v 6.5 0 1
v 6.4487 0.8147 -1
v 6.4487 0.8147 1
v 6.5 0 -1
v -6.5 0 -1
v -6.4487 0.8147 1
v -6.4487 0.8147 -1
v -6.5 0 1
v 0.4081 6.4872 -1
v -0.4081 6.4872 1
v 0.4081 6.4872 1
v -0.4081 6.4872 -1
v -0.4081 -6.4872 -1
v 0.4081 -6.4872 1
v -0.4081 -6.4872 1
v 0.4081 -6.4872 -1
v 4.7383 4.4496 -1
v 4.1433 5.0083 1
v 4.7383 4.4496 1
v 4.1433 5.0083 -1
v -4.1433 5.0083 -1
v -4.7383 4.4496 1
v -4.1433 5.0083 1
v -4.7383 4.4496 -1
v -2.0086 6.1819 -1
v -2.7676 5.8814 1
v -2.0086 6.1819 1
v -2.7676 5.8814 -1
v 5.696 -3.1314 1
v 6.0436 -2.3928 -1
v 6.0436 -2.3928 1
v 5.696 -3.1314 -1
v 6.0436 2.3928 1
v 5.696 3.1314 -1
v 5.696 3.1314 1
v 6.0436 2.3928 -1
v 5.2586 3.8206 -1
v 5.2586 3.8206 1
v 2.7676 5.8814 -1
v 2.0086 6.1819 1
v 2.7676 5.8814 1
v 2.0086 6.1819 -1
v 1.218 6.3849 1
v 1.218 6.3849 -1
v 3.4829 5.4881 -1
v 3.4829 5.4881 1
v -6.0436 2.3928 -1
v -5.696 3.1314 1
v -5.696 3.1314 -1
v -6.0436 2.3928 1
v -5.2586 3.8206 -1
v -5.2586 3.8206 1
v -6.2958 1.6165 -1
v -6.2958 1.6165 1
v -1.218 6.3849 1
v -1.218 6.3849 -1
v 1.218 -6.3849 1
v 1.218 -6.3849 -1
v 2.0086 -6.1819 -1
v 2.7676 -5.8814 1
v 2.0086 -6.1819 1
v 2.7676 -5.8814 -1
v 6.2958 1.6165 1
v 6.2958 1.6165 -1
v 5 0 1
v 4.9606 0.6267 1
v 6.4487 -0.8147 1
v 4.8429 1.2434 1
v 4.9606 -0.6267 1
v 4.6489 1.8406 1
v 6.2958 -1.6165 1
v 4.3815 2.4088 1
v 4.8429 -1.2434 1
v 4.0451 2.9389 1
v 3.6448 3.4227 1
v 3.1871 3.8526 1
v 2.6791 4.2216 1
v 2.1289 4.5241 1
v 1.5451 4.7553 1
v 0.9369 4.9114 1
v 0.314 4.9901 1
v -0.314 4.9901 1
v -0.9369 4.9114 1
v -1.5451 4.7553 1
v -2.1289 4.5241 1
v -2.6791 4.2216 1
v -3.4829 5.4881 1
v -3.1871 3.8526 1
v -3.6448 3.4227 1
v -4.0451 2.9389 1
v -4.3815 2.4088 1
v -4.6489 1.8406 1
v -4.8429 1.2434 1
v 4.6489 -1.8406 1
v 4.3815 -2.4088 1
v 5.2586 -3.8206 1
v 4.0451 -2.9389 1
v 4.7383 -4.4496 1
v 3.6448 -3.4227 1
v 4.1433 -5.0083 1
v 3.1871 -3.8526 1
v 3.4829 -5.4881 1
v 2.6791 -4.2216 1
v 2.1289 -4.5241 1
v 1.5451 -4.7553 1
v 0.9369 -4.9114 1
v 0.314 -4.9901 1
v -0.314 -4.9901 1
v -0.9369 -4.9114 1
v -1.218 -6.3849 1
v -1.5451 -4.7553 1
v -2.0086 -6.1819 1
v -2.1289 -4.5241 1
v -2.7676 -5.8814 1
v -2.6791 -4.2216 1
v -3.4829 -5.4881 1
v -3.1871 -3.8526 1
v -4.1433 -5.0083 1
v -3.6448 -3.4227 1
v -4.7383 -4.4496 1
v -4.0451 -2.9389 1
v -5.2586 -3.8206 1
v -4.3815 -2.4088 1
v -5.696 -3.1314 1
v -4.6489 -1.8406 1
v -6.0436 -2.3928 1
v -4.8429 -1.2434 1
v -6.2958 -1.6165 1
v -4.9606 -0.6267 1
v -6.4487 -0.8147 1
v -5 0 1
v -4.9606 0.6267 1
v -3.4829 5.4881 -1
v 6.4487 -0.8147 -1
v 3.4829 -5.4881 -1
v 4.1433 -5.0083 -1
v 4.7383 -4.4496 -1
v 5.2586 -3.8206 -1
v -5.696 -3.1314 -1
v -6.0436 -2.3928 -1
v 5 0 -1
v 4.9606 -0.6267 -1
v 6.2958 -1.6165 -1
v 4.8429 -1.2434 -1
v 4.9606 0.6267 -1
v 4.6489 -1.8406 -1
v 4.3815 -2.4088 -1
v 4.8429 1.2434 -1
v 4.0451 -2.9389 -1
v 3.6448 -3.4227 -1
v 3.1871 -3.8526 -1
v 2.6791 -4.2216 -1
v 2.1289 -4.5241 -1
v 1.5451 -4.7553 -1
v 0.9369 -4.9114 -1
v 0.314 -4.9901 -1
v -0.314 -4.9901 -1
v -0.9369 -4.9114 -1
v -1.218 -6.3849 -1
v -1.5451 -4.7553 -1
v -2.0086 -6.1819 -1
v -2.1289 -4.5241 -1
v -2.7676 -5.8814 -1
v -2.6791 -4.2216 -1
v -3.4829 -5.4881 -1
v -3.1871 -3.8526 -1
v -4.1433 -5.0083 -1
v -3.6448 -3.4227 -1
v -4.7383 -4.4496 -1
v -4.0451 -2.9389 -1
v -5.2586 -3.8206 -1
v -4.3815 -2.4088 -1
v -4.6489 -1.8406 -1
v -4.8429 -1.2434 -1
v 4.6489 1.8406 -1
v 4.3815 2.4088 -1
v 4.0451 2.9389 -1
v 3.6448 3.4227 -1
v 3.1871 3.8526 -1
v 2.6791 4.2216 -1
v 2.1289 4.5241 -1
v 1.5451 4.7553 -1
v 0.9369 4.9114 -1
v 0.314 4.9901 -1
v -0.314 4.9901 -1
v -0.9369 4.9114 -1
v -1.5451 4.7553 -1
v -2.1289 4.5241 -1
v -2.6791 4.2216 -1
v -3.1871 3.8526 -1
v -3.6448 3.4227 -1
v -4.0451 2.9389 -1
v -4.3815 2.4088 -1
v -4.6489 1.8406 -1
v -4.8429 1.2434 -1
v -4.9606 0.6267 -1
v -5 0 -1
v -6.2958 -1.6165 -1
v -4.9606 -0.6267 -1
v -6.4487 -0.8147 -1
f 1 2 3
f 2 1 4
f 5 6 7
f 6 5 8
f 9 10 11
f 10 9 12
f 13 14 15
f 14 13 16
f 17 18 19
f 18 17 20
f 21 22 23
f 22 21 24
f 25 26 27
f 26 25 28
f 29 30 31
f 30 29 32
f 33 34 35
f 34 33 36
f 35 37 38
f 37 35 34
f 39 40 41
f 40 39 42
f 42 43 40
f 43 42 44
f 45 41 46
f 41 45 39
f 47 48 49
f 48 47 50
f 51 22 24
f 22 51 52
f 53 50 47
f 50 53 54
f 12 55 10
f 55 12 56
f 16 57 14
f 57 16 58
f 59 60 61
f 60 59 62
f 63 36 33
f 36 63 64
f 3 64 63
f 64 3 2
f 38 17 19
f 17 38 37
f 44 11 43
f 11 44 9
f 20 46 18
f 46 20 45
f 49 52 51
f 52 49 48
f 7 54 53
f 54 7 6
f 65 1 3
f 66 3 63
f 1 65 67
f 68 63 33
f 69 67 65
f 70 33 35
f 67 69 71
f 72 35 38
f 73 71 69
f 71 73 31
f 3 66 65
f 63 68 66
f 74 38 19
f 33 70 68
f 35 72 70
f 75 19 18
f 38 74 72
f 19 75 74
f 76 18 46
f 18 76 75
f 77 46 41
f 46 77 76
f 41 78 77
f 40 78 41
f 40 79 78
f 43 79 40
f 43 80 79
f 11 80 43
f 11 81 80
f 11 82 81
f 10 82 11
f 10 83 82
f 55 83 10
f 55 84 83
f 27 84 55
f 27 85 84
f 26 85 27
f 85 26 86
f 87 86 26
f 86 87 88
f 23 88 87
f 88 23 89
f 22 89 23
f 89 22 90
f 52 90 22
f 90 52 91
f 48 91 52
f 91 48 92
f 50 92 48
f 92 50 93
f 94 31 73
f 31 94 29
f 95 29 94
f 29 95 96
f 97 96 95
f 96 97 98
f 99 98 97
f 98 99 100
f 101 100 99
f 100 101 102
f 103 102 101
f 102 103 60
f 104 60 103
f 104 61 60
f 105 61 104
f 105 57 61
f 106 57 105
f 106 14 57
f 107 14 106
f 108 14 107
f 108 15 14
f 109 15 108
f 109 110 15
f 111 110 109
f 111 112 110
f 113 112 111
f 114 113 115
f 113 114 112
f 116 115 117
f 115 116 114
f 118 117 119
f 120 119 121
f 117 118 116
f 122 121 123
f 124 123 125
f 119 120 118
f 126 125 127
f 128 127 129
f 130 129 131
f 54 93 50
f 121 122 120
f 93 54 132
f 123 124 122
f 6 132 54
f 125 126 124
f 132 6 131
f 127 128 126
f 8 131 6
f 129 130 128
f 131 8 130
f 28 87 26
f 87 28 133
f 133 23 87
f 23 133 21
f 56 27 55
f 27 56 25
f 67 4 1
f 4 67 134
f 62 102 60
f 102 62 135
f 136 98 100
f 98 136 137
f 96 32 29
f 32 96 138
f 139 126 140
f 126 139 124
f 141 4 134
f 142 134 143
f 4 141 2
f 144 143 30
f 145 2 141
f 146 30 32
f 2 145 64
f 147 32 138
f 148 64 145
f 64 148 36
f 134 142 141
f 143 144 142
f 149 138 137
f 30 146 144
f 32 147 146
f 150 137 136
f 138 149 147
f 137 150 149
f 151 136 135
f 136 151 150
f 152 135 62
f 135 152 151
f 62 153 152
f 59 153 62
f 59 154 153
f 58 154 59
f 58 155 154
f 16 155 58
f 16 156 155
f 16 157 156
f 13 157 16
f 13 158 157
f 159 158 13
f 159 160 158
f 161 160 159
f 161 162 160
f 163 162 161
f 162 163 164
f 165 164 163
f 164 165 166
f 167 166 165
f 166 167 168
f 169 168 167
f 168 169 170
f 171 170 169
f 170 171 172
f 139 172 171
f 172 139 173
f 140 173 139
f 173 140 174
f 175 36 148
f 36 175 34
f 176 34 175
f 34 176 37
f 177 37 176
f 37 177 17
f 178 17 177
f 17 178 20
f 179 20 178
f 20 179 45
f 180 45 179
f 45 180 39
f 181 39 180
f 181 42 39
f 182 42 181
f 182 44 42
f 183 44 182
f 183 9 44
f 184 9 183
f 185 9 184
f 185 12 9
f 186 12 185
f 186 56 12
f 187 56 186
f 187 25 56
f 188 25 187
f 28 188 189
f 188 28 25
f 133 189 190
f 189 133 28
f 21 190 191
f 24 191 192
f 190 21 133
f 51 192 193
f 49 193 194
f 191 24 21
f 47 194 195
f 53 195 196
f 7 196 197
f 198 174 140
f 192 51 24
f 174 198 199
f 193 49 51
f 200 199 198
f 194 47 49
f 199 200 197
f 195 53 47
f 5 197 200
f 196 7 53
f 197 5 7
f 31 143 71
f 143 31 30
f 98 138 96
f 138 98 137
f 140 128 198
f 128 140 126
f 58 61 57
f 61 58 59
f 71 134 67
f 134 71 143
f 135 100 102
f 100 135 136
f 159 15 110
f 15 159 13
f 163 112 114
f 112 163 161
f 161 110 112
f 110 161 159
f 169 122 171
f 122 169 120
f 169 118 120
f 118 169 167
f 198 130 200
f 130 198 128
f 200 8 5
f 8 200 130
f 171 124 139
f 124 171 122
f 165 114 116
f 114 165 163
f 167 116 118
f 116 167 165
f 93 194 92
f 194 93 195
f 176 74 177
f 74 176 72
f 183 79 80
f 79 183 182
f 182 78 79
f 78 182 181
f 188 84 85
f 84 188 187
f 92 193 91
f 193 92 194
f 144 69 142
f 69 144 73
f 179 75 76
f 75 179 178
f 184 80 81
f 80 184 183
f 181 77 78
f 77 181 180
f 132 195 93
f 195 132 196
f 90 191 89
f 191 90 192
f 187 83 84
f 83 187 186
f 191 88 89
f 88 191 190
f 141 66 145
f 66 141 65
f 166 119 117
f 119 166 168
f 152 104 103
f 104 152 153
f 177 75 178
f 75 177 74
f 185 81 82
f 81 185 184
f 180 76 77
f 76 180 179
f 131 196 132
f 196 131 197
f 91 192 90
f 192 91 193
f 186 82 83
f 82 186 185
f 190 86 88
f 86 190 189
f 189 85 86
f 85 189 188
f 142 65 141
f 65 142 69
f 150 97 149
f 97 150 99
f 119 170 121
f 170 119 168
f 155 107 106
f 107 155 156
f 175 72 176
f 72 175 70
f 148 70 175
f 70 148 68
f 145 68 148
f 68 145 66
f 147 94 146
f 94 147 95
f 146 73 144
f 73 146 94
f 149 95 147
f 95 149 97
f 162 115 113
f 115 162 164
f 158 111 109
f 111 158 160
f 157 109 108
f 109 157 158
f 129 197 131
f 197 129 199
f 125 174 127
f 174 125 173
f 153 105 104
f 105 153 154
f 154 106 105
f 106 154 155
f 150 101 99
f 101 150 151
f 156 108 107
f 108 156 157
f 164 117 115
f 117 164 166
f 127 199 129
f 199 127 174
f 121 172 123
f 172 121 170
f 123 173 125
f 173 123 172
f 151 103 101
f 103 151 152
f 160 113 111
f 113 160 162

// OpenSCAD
$fn = 50;


difference() {
	union() {
		translate(v = [0, 0, -1.0000000000]) {
			cylinder(h = 2, r = 6.5000000000);
		}
	}
	union() {
		translate(v = [0, 0, -100.0000000000]) {
			cylinder(h = 200, r = 5);
		}
	}
}
